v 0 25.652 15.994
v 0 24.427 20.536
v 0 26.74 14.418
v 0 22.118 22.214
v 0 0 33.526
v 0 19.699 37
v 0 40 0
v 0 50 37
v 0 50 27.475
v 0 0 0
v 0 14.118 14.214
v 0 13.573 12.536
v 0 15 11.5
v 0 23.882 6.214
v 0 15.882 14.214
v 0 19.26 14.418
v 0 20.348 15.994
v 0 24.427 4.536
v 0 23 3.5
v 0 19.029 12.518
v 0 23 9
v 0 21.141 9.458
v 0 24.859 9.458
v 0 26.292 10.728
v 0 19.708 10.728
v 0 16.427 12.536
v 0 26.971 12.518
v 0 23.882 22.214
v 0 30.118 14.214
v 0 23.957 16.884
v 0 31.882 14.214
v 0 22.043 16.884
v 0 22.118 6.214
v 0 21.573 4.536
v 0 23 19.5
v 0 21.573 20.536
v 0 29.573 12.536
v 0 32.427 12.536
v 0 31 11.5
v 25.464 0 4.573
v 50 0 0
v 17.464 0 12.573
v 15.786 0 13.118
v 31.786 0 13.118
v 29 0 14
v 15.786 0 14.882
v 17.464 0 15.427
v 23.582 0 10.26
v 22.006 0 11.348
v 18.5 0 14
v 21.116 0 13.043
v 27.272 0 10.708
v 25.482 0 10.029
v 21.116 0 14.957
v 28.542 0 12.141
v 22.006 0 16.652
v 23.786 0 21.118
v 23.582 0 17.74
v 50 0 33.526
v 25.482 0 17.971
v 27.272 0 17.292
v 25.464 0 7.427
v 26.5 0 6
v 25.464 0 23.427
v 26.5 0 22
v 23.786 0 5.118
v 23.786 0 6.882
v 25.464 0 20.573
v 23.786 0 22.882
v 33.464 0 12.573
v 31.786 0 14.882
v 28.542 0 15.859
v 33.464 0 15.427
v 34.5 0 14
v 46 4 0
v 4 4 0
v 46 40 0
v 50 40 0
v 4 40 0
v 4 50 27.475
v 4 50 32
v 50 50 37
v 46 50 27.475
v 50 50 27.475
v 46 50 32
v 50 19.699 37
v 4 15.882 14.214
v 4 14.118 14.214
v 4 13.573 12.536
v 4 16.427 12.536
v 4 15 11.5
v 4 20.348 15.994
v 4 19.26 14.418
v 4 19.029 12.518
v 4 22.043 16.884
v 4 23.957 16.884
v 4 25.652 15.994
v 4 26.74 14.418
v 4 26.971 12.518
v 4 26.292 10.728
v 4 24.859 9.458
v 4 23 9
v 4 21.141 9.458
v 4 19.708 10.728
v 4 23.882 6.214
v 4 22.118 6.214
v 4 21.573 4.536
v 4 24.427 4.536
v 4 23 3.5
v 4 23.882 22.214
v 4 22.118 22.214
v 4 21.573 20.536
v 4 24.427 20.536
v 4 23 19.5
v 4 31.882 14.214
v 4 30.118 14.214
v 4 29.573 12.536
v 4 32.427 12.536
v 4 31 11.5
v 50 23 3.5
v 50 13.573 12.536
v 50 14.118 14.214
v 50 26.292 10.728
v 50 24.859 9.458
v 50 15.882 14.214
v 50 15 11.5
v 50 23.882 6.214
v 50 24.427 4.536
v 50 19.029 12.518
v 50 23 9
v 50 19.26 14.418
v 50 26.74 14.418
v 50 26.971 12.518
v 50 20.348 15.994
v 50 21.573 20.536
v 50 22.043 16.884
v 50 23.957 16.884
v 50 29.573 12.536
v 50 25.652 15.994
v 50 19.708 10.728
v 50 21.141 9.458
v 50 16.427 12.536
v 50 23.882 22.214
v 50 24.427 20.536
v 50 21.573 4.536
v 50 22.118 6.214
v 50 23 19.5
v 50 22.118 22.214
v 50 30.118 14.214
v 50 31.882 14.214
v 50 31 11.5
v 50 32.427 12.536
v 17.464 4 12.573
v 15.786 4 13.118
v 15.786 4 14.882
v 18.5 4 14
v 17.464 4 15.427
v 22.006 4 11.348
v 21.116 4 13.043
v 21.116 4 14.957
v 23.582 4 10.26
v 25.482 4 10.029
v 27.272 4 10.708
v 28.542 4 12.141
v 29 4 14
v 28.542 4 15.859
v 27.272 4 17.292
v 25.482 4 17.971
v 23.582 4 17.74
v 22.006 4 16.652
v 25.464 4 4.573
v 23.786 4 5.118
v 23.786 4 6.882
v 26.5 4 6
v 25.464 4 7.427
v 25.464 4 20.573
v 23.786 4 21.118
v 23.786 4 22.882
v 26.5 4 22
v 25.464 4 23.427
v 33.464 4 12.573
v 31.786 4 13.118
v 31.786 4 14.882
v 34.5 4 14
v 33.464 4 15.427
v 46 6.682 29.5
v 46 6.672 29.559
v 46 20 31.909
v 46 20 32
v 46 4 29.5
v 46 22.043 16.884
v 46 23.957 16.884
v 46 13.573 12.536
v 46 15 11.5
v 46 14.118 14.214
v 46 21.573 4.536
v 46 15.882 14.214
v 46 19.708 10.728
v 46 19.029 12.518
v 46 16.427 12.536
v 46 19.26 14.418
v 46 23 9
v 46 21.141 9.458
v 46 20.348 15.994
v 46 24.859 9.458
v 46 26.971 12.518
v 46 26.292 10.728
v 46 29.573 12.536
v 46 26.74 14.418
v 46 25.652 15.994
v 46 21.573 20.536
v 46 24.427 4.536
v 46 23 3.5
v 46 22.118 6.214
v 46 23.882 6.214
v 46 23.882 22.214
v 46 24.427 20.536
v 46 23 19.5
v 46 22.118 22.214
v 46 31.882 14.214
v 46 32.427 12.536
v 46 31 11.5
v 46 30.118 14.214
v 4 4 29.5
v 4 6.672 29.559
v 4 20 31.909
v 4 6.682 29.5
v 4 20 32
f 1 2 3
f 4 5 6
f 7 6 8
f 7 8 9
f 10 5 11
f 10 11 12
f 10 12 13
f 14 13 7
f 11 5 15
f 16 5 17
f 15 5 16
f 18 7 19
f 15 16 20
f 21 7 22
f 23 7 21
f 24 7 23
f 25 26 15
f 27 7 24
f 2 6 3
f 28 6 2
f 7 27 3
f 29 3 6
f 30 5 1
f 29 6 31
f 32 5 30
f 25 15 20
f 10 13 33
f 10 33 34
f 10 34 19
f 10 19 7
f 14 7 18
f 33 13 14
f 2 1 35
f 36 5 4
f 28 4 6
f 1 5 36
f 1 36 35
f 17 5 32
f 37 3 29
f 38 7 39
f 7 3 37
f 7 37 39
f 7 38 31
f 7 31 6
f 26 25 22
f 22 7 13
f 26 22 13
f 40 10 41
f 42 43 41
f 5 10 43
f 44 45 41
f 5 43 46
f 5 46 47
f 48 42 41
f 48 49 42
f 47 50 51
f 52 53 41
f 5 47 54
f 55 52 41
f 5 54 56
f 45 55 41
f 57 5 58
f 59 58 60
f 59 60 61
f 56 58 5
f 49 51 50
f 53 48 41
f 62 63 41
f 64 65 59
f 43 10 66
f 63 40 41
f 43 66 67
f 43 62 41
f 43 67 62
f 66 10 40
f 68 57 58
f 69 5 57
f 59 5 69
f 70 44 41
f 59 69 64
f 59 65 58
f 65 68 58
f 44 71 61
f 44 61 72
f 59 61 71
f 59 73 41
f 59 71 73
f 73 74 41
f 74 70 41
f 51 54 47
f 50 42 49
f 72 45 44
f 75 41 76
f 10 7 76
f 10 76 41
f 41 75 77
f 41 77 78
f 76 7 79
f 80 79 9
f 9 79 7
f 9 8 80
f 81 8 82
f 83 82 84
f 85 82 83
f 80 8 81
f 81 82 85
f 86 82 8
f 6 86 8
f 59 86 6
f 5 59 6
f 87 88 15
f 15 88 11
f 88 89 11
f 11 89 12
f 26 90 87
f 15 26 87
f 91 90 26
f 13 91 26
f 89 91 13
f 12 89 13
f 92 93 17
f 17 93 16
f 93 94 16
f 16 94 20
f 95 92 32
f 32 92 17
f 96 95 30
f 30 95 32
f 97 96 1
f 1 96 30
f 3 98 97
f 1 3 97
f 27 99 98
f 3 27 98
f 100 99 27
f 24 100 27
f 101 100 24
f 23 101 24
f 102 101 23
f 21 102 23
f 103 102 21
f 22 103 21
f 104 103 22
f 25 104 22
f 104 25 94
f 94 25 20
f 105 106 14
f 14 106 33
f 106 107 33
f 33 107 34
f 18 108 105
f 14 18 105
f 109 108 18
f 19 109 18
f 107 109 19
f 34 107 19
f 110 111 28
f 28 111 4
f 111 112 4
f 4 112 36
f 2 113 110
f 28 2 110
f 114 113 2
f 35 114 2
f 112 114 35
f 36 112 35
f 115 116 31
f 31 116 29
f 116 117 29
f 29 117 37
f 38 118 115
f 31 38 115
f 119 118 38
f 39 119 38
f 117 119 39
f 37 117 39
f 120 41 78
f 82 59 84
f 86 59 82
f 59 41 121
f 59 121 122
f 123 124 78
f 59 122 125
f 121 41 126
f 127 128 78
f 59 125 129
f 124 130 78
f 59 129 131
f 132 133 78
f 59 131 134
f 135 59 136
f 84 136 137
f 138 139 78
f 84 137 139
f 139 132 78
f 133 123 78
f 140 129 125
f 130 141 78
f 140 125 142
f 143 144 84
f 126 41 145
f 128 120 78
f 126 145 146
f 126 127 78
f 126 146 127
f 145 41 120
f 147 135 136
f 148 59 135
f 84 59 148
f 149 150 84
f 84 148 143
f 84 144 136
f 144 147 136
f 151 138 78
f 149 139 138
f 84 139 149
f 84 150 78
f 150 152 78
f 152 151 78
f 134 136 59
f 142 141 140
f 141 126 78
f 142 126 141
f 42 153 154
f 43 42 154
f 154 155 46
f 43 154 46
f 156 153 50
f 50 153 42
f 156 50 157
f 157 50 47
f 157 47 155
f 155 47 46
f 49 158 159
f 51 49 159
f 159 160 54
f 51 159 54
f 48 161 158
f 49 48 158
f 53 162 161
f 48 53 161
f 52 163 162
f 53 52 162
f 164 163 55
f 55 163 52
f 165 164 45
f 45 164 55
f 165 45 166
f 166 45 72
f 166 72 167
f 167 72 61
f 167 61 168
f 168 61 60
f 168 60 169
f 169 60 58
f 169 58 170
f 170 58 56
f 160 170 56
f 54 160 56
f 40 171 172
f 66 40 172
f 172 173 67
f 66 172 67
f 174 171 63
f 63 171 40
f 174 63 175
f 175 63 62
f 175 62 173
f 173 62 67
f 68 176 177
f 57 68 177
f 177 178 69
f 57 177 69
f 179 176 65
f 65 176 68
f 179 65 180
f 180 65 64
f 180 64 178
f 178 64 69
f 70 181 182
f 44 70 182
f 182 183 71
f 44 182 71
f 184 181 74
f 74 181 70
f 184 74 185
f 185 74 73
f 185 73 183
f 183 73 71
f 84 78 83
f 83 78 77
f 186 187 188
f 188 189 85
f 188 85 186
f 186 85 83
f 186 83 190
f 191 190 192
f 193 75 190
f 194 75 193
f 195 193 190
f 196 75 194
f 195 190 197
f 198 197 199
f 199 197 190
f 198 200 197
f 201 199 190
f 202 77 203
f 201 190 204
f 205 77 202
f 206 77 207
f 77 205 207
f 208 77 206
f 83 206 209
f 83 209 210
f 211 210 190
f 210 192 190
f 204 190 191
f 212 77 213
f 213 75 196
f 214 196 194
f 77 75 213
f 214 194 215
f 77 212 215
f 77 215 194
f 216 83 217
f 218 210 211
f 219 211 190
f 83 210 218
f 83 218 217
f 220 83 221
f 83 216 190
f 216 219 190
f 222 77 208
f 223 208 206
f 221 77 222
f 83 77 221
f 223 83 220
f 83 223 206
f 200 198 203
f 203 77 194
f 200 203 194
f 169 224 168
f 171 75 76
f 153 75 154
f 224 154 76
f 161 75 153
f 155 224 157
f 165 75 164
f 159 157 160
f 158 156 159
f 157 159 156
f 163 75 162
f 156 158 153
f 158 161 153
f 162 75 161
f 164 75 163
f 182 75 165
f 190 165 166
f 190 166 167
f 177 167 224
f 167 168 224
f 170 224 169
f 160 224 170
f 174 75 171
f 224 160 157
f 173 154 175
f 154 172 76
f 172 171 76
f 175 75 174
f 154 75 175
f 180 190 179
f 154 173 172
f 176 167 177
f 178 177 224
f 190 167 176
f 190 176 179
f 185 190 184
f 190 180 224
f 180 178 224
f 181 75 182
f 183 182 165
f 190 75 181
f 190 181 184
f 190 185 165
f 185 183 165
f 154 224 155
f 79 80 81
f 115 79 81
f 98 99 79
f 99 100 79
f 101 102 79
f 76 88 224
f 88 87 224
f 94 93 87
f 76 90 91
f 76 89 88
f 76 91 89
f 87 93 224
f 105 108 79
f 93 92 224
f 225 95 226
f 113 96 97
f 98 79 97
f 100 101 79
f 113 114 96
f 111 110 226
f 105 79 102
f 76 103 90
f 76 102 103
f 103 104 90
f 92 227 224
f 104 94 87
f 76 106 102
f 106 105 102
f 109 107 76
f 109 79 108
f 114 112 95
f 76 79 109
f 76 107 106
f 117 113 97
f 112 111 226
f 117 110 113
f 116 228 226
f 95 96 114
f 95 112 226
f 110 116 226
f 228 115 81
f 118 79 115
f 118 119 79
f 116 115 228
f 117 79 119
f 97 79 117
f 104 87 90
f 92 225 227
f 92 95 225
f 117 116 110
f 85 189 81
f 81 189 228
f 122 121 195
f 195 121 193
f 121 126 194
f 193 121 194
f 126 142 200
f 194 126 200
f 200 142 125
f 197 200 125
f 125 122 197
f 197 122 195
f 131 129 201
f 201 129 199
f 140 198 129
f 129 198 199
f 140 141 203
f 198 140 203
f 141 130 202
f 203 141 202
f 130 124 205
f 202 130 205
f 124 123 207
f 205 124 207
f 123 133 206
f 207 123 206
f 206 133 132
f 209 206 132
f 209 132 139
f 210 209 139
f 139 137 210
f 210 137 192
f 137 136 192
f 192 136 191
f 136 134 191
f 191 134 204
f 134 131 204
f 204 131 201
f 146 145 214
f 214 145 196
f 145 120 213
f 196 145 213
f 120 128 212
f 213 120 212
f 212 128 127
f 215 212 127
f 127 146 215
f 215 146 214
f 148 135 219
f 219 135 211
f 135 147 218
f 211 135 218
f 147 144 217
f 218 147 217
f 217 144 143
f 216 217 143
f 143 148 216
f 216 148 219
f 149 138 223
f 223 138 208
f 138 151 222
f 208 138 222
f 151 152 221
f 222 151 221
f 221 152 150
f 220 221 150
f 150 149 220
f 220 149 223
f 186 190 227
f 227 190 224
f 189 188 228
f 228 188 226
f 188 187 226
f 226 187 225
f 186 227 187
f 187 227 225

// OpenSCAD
module cruz(H){
	translate([-34,-13,3])union(){
		translate([34,13,-3]) cylinder(r=4,h=H);
		translate([42,13,-3]) cylinder(r=1.5,h=H);
		translate([26,13,-3]) cylinder(r=1.5,h=H);
		translate([34,21,-3]) cylinder(r=1.5,h=H);
		translate([34,5,-3]) cylinder(r=1.5,h=H);
	}
}

difference(){
	cube([50,50,50]);
	translate([-5,23,13])rotate([0,90,0])cruz(60);
	translate([25,-5,14])rotate([-90,0,0])cruz(60);
	translate([-1,-20,30])rotate([10,0,0])cube(70);
	translate([-1,40,0])rotate([-20,0,0])cube(70);

	translate([4,14,-12])rotate([10,0,0])cube([42,14,42.2]);
	translate([4,20,-10])rotate([0,0,0])cube([42,46,42]);
	translate([4,4,-15])cube([42,42,44.5]);
	translate([-5,-5,37])cube(60);


}
